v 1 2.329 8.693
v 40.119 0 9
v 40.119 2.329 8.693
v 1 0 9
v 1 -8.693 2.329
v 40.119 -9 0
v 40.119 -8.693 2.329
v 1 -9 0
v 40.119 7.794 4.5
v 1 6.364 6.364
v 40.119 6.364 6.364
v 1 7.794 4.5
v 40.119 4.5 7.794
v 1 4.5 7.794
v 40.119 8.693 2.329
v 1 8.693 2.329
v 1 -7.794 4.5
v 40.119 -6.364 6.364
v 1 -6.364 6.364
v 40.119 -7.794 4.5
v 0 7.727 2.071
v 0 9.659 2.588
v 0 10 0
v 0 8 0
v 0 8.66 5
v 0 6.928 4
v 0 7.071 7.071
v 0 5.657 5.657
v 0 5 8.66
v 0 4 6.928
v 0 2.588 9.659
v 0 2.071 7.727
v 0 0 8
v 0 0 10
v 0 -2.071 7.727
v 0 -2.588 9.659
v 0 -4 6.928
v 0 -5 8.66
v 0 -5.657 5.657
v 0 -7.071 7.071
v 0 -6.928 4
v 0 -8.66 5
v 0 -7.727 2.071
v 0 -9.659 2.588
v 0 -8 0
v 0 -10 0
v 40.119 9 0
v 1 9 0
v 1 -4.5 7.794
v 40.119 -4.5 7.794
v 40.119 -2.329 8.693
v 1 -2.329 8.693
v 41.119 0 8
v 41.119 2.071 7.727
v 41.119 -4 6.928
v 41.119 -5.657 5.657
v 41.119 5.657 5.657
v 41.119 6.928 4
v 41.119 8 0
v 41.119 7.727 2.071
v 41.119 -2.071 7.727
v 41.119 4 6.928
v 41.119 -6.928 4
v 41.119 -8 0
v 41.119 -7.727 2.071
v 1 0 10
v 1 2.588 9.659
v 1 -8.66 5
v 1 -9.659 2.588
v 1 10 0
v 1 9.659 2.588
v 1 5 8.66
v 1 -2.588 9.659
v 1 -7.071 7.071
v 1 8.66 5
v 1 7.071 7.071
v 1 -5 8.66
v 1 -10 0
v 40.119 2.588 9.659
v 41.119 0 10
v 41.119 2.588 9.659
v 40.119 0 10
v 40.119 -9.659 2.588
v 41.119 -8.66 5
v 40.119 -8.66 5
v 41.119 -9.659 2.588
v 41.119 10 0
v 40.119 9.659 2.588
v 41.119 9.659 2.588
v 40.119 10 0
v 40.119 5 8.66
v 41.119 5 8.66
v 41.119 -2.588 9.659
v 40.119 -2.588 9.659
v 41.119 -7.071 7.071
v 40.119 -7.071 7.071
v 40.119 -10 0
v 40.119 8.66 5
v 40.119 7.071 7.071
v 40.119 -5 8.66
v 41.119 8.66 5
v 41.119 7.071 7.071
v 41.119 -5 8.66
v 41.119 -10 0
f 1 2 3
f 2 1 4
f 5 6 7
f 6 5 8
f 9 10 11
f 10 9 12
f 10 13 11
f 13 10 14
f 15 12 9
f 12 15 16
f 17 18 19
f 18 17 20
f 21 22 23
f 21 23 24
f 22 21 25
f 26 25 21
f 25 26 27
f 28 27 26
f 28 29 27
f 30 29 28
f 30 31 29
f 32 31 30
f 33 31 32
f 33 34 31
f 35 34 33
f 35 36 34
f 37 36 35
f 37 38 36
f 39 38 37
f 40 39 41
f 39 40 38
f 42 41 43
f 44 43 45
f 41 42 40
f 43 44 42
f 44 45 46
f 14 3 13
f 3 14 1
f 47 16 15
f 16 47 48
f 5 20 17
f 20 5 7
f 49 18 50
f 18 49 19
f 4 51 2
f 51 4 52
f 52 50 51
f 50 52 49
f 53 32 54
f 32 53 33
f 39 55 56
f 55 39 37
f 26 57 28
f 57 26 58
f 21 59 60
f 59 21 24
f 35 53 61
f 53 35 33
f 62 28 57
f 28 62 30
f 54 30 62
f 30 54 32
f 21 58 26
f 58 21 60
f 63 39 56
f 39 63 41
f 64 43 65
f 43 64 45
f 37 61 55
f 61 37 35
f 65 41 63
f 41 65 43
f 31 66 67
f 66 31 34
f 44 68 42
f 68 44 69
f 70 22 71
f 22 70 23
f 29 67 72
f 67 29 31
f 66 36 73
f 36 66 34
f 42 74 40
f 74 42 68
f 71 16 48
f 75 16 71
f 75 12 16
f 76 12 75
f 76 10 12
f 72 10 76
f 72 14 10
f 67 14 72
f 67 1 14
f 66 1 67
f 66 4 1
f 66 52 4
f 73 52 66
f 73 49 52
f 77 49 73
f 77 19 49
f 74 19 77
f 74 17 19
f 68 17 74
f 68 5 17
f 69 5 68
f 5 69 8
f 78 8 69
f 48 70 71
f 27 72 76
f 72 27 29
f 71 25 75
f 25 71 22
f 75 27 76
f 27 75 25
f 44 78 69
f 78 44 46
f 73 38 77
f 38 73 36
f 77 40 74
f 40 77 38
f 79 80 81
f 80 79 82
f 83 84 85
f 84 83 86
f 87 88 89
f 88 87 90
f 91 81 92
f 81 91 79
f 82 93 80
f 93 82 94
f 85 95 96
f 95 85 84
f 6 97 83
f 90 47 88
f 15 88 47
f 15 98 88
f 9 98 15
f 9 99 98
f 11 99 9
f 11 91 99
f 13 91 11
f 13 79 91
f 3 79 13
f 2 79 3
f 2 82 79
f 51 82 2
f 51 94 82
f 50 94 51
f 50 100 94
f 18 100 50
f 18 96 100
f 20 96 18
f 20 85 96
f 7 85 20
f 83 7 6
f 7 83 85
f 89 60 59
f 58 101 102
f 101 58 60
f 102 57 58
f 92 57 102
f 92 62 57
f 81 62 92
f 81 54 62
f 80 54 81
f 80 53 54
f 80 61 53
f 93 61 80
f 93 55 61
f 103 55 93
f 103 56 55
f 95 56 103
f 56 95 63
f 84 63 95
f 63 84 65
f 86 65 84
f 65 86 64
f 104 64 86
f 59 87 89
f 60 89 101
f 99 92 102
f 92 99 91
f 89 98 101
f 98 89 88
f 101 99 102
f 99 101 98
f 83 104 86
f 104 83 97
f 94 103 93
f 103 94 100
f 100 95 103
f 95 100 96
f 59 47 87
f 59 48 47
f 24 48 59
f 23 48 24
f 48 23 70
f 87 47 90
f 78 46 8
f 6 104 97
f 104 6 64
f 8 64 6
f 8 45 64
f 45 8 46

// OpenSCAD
// file: ../build_environments.scad
// build_environments.scad: modules to build level sections
//

module pool(diameter=10.0, wall_height=2.0, step_width=3.0, connections=[])
{
    difference() {
        union() {
        difference() {
            cylinder(h=0.5,r1=diameter+step_width,r2=diameter+step_width,$fn=48);
            translate([0,0,-0.1])
                cylinder(h=0.7,r1=diameter,r2=diameter,$fn=48);
        }
        difference() {
            cylinder(h=wall_height,r1=diameter+step_width+1.0,r2=diameter+step_width+1.0,$fn=48);
            translate([0,0,-0.1])
                cylinder(h=wall_height+0.2,r1=diameter+step_width,r2=diameter+step_width,$fn=48);
        }
        }
    
        for (c = connections)
        {
            rotate([0,90,0]) {
                angle = atan2(c[1],c[0]);
                rotate([-angle,0,0]) {
                    cylinder(h=diameter+5.0,r1=c[2],r2=c[2],$fn=48);
                }
            }
        }
    }
}

module straight(length=10.0, width=2.0, dy1=0.0, dy2=0.0, dz=0.0)
{
    dims = [0, 0, 0, 0, 0, (dz/length)];
    matrix = [
        [ 1, dims[0], dims[1], 0 ],
        [ dims[2], 1, dims[4], 0 ],
        [ dims[5], dims[3], 1, 0 ],
        [ 0, 0, 0, 1 ]
    ];
    multmatrix(matrix)
    difference() {
        translate([dy1,0,0])
        union() {
            rotate([0,90,0]) {
                difference() {
                    cylinder(h=(length-dy1-dy2),r1=width+1.0,r2=width+1.0,$fn=24);
                    translate([0,0,-0.1])
                        cylinder(h=(length-dy1-dy2+0.2),r1=width,r2=width,$fn=24);
                }
                difference() {
                    cylinder(h=1.0,r1=width+2.0,r2=width+2.0,$fn=24);
                    translate([0,0,-0.1])
                        cylinder(h=1.2,r1=width,r2=width,$fn=24);
                }
                translate([0,0,(length-dy1-dy2)-1.0]) {
                    difference() {
                        cylinder(h=1.0,r1=width+2.0,r2=width+2.0,$fn=24);
                        translate([0,0,-0.1])
                            cylinder(h=1.2,r1=width,r2=width,$fn=24);
                    }
                }
            }
        }
        translate([0,0,-(2*width+4.0)/2])
            cube([3*length,3*length,2*width+4.0],center=true);
    }
}

module curve(p0=[0,0], center=[0,0], dir=1, angle=0.0, width=2.0)
{
    radius = sqrt((p0[0]-center[0])*(p0[0]-center[0]) + (p0[1]-center[1])*(p0[1]-center[1]));
    if (dir == 0) {
        difference() {
            rotate([0,0,-90])
            difference() {
                rotate_extrude(angle = angle, convexity = 10, $fn=32)
                    translate([radius, 0, 0])
                        circle(r = width+1.0,$fn=24);
                rotate([0,0,-1.0])
                    rotate_extrude(angle = angle+2.0, convexity = 10, $fn=32)
                        translate([radius, 0, 0])
                            circle(r = width,$fn=24);
            }
            translate([0,0,-(2*width+4.0)/2])
                cube([5*radius,5*radius,2*width+4.0],center=true);
        }
    }
    else {
        difference() {
            rotate([0,0,90])
            difference() {
                rotate_extrude(angle = -angle, convexity = 10, $fn=32)
                    translate([radius, 0, 0])
                        circle(r = width+1.0,$fn=24);
                rotate([0,0,1.0])
                    rotate_extrude(angle = -angle-2.0, convexity = 10, $fn=32)
                        translate([radius, 0, 0])
                            circle(r = width,$fn=24);
            }
            translate([0,0,-(2*width+4.0)/2])
                cube([5*radius,5*radius,2*width+4.0],center=true);
        }
    }

}

// test pool
//pool(diameter=12.0000, wall_height=3.0000, step_width=3.0000, connections=[[0.0000,-26.0000,2.0000], [23.6074,0.0000,2.0000]]);

// test straight, slope
//straight(length=26.0000, width=2.0000, dy1=11.8322, dy2=6.7082, dz=0.0000);
//straight(length=29.1549, width=12.0000, dy1=0.0000, dy2=0.0000, dz=-15.0000);

// test curve
//curve(p0=[23.6074, 0.0000], center=[23.6074, 5.0000], dir=0, angle=60.1011, width=2.0000);
//curve(p0=[33.6426, 12.4219], center=[37.9771, 9.9295], dir=1, angle=120.4627, width=2.0000);
// main file
use <../build_environments.scad>;
straight(length=41.1189, width=8.0000, dy1=0.0000, dy2=0.0000, dz=0.0000);
